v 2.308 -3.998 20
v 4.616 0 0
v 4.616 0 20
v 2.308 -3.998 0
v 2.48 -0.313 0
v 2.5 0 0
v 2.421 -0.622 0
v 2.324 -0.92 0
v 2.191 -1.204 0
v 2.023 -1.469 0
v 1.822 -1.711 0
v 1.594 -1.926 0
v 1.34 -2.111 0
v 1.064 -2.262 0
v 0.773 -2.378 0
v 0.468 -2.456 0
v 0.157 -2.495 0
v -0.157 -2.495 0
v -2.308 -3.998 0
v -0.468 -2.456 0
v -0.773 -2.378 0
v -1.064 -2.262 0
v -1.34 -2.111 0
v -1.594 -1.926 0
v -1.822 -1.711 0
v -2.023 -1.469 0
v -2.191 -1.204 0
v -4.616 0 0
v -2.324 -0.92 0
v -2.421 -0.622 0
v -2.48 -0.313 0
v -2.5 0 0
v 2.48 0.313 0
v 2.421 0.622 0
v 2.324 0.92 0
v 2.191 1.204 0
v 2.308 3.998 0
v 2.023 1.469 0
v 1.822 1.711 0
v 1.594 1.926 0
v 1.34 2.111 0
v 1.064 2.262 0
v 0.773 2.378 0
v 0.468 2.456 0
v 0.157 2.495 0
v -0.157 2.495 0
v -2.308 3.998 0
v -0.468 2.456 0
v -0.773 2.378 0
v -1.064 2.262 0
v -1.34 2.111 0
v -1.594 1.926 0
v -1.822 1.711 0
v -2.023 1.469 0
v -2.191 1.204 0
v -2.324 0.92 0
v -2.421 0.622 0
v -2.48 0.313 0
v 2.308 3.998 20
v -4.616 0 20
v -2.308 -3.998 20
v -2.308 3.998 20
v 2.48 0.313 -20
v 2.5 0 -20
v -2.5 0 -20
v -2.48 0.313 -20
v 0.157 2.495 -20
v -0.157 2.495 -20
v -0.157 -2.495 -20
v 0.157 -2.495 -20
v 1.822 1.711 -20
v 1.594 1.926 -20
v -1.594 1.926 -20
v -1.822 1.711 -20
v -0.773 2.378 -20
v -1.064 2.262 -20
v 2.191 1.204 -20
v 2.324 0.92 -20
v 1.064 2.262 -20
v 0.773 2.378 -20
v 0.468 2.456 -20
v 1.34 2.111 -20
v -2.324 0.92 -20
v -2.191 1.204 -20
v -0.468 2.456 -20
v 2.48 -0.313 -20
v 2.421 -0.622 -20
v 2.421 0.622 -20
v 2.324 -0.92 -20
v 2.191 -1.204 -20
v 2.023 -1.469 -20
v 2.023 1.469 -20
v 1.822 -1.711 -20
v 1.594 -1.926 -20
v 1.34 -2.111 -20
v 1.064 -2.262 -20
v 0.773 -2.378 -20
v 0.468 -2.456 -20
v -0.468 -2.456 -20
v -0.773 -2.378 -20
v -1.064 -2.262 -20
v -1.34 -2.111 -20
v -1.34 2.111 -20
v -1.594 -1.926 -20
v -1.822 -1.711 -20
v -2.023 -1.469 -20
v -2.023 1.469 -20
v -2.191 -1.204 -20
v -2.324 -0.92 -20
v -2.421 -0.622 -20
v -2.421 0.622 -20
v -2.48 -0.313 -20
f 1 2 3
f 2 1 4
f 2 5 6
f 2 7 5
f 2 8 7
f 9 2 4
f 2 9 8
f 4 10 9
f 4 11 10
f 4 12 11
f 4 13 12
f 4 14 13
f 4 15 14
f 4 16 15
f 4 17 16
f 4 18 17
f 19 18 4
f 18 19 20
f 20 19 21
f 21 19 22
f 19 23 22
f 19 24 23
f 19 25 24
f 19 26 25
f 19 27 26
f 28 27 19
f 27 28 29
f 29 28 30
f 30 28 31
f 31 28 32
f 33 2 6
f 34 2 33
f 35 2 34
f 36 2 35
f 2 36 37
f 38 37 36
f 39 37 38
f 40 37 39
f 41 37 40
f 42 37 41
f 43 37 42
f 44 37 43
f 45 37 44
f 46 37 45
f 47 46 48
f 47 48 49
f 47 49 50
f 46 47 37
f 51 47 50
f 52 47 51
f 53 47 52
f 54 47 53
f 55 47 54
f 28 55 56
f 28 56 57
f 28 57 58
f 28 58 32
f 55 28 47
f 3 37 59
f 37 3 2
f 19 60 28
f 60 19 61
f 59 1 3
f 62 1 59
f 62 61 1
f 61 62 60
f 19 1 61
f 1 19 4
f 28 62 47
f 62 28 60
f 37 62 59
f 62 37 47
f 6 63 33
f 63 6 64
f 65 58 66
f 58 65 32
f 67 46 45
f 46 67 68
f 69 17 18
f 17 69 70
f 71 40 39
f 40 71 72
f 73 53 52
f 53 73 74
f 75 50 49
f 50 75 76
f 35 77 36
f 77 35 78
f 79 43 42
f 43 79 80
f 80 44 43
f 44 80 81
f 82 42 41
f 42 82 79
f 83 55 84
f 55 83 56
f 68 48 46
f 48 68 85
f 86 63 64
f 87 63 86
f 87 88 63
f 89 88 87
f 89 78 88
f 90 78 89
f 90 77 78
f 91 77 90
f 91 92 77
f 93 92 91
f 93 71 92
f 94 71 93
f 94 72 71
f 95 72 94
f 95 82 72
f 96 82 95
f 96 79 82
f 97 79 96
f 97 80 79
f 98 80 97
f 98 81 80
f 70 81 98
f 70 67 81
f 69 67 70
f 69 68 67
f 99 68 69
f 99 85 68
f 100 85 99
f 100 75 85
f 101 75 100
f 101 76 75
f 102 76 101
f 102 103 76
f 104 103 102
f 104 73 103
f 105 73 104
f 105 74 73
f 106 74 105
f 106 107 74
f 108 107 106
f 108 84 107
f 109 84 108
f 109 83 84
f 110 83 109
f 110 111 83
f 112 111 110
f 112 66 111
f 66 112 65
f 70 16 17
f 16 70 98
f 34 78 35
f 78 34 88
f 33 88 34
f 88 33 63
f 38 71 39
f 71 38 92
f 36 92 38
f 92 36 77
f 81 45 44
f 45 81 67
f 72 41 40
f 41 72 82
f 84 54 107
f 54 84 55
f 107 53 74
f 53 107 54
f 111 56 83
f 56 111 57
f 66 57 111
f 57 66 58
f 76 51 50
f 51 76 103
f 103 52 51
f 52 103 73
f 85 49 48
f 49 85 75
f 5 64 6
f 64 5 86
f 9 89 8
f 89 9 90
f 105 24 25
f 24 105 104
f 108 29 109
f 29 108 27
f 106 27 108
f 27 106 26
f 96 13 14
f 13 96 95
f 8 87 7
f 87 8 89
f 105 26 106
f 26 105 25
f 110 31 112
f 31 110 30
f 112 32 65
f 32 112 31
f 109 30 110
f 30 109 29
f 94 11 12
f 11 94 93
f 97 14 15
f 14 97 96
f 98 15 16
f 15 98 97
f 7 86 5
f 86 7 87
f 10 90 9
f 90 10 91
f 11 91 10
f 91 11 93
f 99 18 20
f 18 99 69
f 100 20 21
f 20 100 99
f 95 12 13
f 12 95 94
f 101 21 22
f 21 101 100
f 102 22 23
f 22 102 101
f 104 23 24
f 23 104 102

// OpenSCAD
$fn = 50;


difference() {
	union() {
		translate(v = [0, 0, 0]) {
			rotate(a = [0, 0, 0]) {
				translate(v = [0, 0, 0]) {
					rotate(a = [0, 0, 0]) {
						linear_extrude(height = 20) {
							polygon(points = [[4.6160000000, 0.0000000000], [2.3080000000, 3.9975732639], [-2.3080000000, 3.9975732639], [-4.6160000000, 0.0000000000], [-2.3080000000, -3.9975732639], [2.3080000000, -3.9975732639]]);
						}
					}
				}
			}
		}
		translate(v = [0, 0, -20]) {
			rotate(a = [0, 0, 0]) {
				cylinder(h = 20, r = 2.5000000000);
			}
		}
	}
	union();
}
